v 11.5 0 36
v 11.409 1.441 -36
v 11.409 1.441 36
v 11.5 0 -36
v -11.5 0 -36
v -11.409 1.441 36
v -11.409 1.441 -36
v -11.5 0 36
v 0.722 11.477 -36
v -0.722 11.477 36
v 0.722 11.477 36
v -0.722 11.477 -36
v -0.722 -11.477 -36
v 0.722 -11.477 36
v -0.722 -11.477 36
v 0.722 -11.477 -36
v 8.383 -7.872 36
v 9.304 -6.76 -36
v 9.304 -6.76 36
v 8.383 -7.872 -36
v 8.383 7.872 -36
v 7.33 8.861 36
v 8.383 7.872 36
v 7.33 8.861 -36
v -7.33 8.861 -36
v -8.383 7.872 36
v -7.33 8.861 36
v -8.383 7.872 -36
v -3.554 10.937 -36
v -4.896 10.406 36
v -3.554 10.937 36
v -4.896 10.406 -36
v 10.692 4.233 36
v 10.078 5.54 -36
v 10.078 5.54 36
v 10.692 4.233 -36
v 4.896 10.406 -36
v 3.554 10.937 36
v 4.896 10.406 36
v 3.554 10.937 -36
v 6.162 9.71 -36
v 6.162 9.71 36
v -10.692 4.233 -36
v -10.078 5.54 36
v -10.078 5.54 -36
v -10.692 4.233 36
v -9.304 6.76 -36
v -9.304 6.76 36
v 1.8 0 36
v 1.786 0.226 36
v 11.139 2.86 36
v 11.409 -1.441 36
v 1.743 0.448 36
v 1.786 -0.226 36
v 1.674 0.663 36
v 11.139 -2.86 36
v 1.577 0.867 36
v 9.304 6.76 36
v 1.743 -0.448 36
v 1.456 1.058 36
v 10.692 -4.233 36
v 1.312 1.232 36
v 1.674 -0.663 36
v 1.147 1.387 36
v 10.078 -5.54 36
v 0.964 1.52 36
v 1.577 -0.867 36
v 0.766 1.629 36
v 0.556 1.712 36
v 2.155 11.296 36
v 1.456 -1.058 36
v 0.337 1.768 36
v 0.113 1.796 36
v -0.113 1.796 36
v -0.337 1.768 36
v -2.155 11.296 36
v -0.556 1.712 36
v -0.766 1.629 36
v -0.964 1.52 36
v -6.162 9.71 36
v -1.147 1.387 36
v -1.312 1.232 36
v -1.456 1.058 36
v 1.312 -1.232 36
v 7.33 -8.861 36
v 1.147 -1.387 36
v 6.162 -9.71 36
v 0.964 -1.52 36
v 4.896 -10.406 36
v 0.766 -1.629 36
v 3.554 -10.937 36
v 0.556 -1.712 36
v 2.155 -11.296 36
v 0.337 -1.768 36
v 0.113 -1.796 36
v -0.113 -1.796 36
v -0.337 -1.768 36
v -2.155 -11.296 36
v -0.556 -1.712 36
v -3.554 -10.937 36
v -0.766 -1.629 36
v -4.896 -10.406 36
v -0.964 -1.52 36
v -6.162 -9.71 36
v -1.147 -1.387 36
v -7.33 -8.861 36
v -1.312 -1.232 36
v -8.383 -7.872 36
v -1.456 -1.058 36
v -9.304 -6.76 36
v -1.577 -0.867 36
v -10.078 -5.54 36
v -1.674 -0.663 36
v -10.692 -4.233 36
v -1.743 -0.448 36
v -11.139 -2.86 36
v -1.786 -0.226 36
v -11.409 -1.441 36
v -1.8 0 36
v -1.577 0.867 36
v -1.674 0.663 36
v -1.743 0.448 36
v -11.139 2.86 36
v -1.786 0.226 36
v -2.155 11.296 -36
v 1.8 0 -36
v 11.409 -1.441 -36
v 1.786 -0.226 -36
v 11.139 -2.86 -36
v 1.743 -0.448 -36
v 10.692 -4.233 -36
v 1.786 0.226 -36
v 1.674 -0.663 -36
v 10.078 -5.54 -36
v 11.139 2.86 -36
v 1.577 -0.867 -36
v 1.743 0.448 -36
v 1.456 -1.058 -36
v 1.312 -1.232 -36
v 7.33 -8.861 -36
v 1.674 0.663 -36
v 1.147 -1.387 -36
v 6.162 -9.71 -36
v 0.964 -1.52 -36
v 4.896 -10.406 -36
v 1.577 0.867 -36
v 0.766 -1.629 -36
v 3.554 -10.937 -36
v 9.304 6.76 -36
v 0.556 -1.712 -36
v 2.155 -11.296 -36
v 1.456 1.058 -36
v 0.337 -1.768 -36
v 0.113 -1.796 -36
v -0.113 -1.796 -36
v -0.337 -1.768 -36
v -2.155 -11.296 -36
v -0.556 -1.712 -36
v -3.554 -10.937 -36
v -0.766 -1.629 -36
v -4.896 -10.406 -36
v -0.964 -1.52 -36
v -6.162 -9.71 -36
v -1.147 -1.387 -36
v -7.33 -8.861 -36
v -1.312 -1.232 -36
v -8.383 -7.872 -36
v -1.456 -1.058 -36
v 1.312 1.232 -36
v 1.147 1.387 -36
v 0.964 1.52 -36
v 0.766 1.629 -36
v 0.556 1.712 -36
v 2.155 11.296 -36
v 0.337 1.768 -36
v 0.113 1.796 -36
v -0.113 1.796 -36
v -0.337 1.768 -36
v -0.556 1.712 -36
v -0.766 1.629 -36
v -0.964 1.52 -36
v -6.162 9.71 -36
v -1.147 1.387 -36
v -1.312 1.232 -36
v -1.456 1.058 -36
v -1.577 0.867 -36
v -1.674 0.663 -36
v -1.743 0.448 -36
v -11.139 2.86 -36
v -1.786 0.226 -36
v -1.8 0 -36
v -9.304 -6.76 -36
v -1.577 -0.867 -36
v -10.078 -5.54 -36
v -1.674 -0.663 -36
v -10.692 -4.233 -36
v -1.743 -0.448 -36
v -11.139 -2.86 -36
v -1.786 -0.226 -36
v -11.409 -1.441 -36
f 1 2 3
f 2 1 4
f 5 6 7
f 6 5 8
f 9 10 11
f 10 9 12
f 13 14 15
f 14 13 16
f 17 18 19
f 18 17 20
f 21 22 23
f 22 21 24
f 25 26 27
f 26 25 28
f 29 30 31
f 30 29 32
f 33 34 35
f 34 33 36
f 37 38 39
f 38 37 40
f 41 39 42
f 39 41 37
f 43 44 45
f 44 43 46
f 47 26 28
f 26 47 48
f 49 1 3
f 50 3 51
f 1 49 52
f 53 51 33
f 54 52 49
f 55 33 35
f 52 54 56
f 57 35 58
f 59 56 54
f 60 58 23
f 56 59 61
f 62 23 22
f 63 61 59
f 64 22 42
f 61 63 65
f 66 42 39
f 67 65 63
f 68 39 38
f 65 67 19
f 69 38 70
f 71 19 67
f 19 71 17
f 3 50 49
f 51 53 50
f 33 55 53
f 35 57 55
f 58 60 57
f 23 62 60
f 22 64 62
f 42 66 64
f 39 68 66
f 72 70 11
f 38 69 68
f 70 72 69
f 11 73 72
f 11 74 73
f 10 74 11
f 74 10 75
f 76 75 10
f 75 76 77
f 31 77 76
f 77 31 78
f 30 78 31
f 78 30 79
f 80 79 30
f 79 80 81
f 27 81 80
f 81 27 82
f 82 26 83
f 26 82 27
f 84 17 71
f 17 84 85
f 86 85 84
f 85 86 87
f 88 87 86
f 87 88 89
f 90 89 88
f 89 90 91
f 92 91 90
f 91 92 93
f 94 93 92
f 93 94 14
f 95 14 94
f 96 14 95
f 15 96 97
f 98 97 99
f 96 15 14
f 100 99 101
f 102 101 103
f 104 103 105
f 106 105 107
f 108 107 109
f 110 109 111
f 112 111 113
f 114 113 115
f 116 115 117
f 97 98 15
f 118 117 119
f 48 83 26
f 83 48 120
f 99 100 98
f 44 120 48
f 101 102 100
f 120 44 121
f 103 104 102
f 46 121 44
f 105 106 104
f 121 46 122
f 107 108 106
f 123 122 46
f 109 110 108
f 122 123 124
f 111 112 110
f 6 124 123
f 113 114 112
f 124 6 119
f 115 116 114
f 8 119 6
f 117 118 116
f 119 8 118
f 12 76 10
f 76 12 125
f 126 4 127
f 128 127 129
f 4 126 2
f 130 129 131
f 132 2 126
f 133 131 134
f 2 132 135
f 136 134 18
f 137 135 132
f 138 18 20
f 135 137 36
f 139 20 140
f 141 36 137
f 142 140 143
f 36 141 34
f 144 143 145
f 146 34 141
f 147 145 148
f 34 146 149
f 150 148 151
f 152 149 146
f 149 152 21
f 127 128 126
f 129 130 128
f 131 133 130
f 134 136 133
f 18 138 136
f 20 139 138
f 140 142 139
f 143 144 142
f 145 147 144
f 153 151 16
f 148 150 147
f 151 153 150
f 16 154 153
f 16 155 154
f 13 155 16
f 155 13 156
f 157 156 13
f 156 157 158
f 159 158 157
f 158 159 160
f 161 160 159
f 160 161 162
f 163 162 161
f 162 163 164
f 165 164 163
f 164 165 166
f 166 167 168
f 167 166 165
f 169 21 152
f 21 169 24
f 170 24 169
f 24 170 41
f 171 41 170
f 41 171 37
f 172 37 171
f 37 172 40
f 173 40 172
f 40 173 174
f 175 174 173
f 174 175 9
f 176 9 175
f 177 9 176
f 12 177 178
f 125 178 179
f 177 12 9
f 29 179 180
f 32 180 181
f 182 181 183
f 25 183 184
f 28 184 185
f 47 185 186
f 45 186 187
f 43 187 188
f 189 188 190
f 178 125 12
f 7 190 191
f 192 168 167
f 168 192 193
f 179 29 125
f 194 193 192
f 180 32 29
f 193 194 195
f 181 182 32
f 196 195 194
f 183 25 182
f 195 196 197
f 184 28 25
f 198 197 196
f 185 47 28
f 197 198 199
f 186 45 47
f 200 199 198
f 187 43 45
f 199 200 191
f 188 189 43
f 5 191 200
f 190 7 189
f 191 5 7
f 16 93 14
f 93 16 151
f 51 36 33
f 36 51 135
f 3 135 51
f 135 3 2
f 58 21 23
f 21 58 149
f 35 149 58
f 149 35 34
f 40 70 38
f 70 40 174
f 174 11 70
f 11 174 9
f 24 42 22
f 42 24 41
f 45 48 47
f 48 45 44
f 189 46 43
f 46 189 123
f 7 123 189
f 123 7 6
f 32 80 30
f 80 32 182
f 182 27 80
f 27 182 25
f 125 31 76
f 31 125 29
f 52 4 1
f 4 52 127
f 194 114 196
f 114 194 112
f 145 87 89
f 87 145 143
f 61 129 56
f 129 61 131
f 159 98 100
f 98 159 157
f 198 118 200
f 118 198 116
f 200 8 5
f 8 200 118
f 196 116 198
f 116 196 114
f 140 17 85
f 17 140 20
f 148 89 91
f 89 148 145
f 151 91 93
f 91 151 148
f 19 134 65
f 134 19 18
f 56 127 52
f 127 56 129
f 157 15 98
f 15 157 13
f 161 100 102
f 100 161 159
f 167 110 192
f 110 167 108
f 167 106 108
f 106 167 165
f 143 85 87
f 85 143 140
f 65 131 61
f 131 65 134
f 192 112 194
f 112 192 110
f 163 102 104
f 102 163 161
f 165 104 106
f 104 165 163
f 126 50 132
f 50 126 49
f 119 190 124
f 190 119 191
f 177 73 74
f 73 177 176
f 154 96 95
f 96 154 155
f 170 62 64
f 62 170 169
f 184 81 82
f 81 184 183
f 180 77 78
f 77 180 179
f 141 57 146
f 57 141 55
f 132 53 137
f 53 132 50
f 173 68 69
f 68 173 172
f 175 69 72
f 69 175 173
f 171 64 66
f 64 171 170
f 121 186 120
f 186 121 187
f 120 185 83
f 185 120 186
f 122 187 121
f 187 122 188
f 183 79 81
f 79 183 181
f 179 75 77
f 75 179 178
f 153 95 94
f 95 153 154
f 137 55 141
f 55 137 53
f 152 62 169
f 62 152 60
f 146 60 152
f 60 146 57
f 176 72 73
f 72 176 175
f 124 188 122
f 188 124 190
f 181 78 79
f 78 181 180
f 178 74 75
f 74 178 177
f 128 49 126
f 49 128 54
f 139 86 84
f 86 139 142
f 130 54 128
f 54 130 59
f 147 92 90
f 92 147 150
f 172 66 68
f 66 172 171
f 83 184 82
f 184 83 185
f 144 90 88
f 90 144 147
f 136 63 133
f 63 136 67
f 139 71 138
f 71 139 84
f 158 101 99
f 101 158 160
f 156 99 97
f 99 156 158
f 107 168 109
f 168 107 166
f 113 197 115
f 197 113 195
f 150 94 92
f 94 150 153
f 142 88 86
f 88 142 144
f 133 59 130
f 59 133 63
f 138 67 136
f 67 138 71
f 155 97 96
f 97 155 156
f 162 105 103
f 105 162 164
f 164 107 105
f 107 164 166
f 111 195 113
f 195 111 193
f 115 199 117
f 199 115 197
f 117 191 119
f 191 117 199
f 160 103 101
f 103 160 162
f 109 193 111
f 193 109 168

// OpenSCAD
$fn = 50;


difference() {
	union() {
		translate(v = [0, 0, -36.0000000000]) {
			cylinder(h = 72, r = 11.5000000000);
		}
	}
	union() {
		translate(v = [0, 0, -100.0000000000]) {
			cylinder(h = 200, r = 1.8000000000);
		}
	}
}
